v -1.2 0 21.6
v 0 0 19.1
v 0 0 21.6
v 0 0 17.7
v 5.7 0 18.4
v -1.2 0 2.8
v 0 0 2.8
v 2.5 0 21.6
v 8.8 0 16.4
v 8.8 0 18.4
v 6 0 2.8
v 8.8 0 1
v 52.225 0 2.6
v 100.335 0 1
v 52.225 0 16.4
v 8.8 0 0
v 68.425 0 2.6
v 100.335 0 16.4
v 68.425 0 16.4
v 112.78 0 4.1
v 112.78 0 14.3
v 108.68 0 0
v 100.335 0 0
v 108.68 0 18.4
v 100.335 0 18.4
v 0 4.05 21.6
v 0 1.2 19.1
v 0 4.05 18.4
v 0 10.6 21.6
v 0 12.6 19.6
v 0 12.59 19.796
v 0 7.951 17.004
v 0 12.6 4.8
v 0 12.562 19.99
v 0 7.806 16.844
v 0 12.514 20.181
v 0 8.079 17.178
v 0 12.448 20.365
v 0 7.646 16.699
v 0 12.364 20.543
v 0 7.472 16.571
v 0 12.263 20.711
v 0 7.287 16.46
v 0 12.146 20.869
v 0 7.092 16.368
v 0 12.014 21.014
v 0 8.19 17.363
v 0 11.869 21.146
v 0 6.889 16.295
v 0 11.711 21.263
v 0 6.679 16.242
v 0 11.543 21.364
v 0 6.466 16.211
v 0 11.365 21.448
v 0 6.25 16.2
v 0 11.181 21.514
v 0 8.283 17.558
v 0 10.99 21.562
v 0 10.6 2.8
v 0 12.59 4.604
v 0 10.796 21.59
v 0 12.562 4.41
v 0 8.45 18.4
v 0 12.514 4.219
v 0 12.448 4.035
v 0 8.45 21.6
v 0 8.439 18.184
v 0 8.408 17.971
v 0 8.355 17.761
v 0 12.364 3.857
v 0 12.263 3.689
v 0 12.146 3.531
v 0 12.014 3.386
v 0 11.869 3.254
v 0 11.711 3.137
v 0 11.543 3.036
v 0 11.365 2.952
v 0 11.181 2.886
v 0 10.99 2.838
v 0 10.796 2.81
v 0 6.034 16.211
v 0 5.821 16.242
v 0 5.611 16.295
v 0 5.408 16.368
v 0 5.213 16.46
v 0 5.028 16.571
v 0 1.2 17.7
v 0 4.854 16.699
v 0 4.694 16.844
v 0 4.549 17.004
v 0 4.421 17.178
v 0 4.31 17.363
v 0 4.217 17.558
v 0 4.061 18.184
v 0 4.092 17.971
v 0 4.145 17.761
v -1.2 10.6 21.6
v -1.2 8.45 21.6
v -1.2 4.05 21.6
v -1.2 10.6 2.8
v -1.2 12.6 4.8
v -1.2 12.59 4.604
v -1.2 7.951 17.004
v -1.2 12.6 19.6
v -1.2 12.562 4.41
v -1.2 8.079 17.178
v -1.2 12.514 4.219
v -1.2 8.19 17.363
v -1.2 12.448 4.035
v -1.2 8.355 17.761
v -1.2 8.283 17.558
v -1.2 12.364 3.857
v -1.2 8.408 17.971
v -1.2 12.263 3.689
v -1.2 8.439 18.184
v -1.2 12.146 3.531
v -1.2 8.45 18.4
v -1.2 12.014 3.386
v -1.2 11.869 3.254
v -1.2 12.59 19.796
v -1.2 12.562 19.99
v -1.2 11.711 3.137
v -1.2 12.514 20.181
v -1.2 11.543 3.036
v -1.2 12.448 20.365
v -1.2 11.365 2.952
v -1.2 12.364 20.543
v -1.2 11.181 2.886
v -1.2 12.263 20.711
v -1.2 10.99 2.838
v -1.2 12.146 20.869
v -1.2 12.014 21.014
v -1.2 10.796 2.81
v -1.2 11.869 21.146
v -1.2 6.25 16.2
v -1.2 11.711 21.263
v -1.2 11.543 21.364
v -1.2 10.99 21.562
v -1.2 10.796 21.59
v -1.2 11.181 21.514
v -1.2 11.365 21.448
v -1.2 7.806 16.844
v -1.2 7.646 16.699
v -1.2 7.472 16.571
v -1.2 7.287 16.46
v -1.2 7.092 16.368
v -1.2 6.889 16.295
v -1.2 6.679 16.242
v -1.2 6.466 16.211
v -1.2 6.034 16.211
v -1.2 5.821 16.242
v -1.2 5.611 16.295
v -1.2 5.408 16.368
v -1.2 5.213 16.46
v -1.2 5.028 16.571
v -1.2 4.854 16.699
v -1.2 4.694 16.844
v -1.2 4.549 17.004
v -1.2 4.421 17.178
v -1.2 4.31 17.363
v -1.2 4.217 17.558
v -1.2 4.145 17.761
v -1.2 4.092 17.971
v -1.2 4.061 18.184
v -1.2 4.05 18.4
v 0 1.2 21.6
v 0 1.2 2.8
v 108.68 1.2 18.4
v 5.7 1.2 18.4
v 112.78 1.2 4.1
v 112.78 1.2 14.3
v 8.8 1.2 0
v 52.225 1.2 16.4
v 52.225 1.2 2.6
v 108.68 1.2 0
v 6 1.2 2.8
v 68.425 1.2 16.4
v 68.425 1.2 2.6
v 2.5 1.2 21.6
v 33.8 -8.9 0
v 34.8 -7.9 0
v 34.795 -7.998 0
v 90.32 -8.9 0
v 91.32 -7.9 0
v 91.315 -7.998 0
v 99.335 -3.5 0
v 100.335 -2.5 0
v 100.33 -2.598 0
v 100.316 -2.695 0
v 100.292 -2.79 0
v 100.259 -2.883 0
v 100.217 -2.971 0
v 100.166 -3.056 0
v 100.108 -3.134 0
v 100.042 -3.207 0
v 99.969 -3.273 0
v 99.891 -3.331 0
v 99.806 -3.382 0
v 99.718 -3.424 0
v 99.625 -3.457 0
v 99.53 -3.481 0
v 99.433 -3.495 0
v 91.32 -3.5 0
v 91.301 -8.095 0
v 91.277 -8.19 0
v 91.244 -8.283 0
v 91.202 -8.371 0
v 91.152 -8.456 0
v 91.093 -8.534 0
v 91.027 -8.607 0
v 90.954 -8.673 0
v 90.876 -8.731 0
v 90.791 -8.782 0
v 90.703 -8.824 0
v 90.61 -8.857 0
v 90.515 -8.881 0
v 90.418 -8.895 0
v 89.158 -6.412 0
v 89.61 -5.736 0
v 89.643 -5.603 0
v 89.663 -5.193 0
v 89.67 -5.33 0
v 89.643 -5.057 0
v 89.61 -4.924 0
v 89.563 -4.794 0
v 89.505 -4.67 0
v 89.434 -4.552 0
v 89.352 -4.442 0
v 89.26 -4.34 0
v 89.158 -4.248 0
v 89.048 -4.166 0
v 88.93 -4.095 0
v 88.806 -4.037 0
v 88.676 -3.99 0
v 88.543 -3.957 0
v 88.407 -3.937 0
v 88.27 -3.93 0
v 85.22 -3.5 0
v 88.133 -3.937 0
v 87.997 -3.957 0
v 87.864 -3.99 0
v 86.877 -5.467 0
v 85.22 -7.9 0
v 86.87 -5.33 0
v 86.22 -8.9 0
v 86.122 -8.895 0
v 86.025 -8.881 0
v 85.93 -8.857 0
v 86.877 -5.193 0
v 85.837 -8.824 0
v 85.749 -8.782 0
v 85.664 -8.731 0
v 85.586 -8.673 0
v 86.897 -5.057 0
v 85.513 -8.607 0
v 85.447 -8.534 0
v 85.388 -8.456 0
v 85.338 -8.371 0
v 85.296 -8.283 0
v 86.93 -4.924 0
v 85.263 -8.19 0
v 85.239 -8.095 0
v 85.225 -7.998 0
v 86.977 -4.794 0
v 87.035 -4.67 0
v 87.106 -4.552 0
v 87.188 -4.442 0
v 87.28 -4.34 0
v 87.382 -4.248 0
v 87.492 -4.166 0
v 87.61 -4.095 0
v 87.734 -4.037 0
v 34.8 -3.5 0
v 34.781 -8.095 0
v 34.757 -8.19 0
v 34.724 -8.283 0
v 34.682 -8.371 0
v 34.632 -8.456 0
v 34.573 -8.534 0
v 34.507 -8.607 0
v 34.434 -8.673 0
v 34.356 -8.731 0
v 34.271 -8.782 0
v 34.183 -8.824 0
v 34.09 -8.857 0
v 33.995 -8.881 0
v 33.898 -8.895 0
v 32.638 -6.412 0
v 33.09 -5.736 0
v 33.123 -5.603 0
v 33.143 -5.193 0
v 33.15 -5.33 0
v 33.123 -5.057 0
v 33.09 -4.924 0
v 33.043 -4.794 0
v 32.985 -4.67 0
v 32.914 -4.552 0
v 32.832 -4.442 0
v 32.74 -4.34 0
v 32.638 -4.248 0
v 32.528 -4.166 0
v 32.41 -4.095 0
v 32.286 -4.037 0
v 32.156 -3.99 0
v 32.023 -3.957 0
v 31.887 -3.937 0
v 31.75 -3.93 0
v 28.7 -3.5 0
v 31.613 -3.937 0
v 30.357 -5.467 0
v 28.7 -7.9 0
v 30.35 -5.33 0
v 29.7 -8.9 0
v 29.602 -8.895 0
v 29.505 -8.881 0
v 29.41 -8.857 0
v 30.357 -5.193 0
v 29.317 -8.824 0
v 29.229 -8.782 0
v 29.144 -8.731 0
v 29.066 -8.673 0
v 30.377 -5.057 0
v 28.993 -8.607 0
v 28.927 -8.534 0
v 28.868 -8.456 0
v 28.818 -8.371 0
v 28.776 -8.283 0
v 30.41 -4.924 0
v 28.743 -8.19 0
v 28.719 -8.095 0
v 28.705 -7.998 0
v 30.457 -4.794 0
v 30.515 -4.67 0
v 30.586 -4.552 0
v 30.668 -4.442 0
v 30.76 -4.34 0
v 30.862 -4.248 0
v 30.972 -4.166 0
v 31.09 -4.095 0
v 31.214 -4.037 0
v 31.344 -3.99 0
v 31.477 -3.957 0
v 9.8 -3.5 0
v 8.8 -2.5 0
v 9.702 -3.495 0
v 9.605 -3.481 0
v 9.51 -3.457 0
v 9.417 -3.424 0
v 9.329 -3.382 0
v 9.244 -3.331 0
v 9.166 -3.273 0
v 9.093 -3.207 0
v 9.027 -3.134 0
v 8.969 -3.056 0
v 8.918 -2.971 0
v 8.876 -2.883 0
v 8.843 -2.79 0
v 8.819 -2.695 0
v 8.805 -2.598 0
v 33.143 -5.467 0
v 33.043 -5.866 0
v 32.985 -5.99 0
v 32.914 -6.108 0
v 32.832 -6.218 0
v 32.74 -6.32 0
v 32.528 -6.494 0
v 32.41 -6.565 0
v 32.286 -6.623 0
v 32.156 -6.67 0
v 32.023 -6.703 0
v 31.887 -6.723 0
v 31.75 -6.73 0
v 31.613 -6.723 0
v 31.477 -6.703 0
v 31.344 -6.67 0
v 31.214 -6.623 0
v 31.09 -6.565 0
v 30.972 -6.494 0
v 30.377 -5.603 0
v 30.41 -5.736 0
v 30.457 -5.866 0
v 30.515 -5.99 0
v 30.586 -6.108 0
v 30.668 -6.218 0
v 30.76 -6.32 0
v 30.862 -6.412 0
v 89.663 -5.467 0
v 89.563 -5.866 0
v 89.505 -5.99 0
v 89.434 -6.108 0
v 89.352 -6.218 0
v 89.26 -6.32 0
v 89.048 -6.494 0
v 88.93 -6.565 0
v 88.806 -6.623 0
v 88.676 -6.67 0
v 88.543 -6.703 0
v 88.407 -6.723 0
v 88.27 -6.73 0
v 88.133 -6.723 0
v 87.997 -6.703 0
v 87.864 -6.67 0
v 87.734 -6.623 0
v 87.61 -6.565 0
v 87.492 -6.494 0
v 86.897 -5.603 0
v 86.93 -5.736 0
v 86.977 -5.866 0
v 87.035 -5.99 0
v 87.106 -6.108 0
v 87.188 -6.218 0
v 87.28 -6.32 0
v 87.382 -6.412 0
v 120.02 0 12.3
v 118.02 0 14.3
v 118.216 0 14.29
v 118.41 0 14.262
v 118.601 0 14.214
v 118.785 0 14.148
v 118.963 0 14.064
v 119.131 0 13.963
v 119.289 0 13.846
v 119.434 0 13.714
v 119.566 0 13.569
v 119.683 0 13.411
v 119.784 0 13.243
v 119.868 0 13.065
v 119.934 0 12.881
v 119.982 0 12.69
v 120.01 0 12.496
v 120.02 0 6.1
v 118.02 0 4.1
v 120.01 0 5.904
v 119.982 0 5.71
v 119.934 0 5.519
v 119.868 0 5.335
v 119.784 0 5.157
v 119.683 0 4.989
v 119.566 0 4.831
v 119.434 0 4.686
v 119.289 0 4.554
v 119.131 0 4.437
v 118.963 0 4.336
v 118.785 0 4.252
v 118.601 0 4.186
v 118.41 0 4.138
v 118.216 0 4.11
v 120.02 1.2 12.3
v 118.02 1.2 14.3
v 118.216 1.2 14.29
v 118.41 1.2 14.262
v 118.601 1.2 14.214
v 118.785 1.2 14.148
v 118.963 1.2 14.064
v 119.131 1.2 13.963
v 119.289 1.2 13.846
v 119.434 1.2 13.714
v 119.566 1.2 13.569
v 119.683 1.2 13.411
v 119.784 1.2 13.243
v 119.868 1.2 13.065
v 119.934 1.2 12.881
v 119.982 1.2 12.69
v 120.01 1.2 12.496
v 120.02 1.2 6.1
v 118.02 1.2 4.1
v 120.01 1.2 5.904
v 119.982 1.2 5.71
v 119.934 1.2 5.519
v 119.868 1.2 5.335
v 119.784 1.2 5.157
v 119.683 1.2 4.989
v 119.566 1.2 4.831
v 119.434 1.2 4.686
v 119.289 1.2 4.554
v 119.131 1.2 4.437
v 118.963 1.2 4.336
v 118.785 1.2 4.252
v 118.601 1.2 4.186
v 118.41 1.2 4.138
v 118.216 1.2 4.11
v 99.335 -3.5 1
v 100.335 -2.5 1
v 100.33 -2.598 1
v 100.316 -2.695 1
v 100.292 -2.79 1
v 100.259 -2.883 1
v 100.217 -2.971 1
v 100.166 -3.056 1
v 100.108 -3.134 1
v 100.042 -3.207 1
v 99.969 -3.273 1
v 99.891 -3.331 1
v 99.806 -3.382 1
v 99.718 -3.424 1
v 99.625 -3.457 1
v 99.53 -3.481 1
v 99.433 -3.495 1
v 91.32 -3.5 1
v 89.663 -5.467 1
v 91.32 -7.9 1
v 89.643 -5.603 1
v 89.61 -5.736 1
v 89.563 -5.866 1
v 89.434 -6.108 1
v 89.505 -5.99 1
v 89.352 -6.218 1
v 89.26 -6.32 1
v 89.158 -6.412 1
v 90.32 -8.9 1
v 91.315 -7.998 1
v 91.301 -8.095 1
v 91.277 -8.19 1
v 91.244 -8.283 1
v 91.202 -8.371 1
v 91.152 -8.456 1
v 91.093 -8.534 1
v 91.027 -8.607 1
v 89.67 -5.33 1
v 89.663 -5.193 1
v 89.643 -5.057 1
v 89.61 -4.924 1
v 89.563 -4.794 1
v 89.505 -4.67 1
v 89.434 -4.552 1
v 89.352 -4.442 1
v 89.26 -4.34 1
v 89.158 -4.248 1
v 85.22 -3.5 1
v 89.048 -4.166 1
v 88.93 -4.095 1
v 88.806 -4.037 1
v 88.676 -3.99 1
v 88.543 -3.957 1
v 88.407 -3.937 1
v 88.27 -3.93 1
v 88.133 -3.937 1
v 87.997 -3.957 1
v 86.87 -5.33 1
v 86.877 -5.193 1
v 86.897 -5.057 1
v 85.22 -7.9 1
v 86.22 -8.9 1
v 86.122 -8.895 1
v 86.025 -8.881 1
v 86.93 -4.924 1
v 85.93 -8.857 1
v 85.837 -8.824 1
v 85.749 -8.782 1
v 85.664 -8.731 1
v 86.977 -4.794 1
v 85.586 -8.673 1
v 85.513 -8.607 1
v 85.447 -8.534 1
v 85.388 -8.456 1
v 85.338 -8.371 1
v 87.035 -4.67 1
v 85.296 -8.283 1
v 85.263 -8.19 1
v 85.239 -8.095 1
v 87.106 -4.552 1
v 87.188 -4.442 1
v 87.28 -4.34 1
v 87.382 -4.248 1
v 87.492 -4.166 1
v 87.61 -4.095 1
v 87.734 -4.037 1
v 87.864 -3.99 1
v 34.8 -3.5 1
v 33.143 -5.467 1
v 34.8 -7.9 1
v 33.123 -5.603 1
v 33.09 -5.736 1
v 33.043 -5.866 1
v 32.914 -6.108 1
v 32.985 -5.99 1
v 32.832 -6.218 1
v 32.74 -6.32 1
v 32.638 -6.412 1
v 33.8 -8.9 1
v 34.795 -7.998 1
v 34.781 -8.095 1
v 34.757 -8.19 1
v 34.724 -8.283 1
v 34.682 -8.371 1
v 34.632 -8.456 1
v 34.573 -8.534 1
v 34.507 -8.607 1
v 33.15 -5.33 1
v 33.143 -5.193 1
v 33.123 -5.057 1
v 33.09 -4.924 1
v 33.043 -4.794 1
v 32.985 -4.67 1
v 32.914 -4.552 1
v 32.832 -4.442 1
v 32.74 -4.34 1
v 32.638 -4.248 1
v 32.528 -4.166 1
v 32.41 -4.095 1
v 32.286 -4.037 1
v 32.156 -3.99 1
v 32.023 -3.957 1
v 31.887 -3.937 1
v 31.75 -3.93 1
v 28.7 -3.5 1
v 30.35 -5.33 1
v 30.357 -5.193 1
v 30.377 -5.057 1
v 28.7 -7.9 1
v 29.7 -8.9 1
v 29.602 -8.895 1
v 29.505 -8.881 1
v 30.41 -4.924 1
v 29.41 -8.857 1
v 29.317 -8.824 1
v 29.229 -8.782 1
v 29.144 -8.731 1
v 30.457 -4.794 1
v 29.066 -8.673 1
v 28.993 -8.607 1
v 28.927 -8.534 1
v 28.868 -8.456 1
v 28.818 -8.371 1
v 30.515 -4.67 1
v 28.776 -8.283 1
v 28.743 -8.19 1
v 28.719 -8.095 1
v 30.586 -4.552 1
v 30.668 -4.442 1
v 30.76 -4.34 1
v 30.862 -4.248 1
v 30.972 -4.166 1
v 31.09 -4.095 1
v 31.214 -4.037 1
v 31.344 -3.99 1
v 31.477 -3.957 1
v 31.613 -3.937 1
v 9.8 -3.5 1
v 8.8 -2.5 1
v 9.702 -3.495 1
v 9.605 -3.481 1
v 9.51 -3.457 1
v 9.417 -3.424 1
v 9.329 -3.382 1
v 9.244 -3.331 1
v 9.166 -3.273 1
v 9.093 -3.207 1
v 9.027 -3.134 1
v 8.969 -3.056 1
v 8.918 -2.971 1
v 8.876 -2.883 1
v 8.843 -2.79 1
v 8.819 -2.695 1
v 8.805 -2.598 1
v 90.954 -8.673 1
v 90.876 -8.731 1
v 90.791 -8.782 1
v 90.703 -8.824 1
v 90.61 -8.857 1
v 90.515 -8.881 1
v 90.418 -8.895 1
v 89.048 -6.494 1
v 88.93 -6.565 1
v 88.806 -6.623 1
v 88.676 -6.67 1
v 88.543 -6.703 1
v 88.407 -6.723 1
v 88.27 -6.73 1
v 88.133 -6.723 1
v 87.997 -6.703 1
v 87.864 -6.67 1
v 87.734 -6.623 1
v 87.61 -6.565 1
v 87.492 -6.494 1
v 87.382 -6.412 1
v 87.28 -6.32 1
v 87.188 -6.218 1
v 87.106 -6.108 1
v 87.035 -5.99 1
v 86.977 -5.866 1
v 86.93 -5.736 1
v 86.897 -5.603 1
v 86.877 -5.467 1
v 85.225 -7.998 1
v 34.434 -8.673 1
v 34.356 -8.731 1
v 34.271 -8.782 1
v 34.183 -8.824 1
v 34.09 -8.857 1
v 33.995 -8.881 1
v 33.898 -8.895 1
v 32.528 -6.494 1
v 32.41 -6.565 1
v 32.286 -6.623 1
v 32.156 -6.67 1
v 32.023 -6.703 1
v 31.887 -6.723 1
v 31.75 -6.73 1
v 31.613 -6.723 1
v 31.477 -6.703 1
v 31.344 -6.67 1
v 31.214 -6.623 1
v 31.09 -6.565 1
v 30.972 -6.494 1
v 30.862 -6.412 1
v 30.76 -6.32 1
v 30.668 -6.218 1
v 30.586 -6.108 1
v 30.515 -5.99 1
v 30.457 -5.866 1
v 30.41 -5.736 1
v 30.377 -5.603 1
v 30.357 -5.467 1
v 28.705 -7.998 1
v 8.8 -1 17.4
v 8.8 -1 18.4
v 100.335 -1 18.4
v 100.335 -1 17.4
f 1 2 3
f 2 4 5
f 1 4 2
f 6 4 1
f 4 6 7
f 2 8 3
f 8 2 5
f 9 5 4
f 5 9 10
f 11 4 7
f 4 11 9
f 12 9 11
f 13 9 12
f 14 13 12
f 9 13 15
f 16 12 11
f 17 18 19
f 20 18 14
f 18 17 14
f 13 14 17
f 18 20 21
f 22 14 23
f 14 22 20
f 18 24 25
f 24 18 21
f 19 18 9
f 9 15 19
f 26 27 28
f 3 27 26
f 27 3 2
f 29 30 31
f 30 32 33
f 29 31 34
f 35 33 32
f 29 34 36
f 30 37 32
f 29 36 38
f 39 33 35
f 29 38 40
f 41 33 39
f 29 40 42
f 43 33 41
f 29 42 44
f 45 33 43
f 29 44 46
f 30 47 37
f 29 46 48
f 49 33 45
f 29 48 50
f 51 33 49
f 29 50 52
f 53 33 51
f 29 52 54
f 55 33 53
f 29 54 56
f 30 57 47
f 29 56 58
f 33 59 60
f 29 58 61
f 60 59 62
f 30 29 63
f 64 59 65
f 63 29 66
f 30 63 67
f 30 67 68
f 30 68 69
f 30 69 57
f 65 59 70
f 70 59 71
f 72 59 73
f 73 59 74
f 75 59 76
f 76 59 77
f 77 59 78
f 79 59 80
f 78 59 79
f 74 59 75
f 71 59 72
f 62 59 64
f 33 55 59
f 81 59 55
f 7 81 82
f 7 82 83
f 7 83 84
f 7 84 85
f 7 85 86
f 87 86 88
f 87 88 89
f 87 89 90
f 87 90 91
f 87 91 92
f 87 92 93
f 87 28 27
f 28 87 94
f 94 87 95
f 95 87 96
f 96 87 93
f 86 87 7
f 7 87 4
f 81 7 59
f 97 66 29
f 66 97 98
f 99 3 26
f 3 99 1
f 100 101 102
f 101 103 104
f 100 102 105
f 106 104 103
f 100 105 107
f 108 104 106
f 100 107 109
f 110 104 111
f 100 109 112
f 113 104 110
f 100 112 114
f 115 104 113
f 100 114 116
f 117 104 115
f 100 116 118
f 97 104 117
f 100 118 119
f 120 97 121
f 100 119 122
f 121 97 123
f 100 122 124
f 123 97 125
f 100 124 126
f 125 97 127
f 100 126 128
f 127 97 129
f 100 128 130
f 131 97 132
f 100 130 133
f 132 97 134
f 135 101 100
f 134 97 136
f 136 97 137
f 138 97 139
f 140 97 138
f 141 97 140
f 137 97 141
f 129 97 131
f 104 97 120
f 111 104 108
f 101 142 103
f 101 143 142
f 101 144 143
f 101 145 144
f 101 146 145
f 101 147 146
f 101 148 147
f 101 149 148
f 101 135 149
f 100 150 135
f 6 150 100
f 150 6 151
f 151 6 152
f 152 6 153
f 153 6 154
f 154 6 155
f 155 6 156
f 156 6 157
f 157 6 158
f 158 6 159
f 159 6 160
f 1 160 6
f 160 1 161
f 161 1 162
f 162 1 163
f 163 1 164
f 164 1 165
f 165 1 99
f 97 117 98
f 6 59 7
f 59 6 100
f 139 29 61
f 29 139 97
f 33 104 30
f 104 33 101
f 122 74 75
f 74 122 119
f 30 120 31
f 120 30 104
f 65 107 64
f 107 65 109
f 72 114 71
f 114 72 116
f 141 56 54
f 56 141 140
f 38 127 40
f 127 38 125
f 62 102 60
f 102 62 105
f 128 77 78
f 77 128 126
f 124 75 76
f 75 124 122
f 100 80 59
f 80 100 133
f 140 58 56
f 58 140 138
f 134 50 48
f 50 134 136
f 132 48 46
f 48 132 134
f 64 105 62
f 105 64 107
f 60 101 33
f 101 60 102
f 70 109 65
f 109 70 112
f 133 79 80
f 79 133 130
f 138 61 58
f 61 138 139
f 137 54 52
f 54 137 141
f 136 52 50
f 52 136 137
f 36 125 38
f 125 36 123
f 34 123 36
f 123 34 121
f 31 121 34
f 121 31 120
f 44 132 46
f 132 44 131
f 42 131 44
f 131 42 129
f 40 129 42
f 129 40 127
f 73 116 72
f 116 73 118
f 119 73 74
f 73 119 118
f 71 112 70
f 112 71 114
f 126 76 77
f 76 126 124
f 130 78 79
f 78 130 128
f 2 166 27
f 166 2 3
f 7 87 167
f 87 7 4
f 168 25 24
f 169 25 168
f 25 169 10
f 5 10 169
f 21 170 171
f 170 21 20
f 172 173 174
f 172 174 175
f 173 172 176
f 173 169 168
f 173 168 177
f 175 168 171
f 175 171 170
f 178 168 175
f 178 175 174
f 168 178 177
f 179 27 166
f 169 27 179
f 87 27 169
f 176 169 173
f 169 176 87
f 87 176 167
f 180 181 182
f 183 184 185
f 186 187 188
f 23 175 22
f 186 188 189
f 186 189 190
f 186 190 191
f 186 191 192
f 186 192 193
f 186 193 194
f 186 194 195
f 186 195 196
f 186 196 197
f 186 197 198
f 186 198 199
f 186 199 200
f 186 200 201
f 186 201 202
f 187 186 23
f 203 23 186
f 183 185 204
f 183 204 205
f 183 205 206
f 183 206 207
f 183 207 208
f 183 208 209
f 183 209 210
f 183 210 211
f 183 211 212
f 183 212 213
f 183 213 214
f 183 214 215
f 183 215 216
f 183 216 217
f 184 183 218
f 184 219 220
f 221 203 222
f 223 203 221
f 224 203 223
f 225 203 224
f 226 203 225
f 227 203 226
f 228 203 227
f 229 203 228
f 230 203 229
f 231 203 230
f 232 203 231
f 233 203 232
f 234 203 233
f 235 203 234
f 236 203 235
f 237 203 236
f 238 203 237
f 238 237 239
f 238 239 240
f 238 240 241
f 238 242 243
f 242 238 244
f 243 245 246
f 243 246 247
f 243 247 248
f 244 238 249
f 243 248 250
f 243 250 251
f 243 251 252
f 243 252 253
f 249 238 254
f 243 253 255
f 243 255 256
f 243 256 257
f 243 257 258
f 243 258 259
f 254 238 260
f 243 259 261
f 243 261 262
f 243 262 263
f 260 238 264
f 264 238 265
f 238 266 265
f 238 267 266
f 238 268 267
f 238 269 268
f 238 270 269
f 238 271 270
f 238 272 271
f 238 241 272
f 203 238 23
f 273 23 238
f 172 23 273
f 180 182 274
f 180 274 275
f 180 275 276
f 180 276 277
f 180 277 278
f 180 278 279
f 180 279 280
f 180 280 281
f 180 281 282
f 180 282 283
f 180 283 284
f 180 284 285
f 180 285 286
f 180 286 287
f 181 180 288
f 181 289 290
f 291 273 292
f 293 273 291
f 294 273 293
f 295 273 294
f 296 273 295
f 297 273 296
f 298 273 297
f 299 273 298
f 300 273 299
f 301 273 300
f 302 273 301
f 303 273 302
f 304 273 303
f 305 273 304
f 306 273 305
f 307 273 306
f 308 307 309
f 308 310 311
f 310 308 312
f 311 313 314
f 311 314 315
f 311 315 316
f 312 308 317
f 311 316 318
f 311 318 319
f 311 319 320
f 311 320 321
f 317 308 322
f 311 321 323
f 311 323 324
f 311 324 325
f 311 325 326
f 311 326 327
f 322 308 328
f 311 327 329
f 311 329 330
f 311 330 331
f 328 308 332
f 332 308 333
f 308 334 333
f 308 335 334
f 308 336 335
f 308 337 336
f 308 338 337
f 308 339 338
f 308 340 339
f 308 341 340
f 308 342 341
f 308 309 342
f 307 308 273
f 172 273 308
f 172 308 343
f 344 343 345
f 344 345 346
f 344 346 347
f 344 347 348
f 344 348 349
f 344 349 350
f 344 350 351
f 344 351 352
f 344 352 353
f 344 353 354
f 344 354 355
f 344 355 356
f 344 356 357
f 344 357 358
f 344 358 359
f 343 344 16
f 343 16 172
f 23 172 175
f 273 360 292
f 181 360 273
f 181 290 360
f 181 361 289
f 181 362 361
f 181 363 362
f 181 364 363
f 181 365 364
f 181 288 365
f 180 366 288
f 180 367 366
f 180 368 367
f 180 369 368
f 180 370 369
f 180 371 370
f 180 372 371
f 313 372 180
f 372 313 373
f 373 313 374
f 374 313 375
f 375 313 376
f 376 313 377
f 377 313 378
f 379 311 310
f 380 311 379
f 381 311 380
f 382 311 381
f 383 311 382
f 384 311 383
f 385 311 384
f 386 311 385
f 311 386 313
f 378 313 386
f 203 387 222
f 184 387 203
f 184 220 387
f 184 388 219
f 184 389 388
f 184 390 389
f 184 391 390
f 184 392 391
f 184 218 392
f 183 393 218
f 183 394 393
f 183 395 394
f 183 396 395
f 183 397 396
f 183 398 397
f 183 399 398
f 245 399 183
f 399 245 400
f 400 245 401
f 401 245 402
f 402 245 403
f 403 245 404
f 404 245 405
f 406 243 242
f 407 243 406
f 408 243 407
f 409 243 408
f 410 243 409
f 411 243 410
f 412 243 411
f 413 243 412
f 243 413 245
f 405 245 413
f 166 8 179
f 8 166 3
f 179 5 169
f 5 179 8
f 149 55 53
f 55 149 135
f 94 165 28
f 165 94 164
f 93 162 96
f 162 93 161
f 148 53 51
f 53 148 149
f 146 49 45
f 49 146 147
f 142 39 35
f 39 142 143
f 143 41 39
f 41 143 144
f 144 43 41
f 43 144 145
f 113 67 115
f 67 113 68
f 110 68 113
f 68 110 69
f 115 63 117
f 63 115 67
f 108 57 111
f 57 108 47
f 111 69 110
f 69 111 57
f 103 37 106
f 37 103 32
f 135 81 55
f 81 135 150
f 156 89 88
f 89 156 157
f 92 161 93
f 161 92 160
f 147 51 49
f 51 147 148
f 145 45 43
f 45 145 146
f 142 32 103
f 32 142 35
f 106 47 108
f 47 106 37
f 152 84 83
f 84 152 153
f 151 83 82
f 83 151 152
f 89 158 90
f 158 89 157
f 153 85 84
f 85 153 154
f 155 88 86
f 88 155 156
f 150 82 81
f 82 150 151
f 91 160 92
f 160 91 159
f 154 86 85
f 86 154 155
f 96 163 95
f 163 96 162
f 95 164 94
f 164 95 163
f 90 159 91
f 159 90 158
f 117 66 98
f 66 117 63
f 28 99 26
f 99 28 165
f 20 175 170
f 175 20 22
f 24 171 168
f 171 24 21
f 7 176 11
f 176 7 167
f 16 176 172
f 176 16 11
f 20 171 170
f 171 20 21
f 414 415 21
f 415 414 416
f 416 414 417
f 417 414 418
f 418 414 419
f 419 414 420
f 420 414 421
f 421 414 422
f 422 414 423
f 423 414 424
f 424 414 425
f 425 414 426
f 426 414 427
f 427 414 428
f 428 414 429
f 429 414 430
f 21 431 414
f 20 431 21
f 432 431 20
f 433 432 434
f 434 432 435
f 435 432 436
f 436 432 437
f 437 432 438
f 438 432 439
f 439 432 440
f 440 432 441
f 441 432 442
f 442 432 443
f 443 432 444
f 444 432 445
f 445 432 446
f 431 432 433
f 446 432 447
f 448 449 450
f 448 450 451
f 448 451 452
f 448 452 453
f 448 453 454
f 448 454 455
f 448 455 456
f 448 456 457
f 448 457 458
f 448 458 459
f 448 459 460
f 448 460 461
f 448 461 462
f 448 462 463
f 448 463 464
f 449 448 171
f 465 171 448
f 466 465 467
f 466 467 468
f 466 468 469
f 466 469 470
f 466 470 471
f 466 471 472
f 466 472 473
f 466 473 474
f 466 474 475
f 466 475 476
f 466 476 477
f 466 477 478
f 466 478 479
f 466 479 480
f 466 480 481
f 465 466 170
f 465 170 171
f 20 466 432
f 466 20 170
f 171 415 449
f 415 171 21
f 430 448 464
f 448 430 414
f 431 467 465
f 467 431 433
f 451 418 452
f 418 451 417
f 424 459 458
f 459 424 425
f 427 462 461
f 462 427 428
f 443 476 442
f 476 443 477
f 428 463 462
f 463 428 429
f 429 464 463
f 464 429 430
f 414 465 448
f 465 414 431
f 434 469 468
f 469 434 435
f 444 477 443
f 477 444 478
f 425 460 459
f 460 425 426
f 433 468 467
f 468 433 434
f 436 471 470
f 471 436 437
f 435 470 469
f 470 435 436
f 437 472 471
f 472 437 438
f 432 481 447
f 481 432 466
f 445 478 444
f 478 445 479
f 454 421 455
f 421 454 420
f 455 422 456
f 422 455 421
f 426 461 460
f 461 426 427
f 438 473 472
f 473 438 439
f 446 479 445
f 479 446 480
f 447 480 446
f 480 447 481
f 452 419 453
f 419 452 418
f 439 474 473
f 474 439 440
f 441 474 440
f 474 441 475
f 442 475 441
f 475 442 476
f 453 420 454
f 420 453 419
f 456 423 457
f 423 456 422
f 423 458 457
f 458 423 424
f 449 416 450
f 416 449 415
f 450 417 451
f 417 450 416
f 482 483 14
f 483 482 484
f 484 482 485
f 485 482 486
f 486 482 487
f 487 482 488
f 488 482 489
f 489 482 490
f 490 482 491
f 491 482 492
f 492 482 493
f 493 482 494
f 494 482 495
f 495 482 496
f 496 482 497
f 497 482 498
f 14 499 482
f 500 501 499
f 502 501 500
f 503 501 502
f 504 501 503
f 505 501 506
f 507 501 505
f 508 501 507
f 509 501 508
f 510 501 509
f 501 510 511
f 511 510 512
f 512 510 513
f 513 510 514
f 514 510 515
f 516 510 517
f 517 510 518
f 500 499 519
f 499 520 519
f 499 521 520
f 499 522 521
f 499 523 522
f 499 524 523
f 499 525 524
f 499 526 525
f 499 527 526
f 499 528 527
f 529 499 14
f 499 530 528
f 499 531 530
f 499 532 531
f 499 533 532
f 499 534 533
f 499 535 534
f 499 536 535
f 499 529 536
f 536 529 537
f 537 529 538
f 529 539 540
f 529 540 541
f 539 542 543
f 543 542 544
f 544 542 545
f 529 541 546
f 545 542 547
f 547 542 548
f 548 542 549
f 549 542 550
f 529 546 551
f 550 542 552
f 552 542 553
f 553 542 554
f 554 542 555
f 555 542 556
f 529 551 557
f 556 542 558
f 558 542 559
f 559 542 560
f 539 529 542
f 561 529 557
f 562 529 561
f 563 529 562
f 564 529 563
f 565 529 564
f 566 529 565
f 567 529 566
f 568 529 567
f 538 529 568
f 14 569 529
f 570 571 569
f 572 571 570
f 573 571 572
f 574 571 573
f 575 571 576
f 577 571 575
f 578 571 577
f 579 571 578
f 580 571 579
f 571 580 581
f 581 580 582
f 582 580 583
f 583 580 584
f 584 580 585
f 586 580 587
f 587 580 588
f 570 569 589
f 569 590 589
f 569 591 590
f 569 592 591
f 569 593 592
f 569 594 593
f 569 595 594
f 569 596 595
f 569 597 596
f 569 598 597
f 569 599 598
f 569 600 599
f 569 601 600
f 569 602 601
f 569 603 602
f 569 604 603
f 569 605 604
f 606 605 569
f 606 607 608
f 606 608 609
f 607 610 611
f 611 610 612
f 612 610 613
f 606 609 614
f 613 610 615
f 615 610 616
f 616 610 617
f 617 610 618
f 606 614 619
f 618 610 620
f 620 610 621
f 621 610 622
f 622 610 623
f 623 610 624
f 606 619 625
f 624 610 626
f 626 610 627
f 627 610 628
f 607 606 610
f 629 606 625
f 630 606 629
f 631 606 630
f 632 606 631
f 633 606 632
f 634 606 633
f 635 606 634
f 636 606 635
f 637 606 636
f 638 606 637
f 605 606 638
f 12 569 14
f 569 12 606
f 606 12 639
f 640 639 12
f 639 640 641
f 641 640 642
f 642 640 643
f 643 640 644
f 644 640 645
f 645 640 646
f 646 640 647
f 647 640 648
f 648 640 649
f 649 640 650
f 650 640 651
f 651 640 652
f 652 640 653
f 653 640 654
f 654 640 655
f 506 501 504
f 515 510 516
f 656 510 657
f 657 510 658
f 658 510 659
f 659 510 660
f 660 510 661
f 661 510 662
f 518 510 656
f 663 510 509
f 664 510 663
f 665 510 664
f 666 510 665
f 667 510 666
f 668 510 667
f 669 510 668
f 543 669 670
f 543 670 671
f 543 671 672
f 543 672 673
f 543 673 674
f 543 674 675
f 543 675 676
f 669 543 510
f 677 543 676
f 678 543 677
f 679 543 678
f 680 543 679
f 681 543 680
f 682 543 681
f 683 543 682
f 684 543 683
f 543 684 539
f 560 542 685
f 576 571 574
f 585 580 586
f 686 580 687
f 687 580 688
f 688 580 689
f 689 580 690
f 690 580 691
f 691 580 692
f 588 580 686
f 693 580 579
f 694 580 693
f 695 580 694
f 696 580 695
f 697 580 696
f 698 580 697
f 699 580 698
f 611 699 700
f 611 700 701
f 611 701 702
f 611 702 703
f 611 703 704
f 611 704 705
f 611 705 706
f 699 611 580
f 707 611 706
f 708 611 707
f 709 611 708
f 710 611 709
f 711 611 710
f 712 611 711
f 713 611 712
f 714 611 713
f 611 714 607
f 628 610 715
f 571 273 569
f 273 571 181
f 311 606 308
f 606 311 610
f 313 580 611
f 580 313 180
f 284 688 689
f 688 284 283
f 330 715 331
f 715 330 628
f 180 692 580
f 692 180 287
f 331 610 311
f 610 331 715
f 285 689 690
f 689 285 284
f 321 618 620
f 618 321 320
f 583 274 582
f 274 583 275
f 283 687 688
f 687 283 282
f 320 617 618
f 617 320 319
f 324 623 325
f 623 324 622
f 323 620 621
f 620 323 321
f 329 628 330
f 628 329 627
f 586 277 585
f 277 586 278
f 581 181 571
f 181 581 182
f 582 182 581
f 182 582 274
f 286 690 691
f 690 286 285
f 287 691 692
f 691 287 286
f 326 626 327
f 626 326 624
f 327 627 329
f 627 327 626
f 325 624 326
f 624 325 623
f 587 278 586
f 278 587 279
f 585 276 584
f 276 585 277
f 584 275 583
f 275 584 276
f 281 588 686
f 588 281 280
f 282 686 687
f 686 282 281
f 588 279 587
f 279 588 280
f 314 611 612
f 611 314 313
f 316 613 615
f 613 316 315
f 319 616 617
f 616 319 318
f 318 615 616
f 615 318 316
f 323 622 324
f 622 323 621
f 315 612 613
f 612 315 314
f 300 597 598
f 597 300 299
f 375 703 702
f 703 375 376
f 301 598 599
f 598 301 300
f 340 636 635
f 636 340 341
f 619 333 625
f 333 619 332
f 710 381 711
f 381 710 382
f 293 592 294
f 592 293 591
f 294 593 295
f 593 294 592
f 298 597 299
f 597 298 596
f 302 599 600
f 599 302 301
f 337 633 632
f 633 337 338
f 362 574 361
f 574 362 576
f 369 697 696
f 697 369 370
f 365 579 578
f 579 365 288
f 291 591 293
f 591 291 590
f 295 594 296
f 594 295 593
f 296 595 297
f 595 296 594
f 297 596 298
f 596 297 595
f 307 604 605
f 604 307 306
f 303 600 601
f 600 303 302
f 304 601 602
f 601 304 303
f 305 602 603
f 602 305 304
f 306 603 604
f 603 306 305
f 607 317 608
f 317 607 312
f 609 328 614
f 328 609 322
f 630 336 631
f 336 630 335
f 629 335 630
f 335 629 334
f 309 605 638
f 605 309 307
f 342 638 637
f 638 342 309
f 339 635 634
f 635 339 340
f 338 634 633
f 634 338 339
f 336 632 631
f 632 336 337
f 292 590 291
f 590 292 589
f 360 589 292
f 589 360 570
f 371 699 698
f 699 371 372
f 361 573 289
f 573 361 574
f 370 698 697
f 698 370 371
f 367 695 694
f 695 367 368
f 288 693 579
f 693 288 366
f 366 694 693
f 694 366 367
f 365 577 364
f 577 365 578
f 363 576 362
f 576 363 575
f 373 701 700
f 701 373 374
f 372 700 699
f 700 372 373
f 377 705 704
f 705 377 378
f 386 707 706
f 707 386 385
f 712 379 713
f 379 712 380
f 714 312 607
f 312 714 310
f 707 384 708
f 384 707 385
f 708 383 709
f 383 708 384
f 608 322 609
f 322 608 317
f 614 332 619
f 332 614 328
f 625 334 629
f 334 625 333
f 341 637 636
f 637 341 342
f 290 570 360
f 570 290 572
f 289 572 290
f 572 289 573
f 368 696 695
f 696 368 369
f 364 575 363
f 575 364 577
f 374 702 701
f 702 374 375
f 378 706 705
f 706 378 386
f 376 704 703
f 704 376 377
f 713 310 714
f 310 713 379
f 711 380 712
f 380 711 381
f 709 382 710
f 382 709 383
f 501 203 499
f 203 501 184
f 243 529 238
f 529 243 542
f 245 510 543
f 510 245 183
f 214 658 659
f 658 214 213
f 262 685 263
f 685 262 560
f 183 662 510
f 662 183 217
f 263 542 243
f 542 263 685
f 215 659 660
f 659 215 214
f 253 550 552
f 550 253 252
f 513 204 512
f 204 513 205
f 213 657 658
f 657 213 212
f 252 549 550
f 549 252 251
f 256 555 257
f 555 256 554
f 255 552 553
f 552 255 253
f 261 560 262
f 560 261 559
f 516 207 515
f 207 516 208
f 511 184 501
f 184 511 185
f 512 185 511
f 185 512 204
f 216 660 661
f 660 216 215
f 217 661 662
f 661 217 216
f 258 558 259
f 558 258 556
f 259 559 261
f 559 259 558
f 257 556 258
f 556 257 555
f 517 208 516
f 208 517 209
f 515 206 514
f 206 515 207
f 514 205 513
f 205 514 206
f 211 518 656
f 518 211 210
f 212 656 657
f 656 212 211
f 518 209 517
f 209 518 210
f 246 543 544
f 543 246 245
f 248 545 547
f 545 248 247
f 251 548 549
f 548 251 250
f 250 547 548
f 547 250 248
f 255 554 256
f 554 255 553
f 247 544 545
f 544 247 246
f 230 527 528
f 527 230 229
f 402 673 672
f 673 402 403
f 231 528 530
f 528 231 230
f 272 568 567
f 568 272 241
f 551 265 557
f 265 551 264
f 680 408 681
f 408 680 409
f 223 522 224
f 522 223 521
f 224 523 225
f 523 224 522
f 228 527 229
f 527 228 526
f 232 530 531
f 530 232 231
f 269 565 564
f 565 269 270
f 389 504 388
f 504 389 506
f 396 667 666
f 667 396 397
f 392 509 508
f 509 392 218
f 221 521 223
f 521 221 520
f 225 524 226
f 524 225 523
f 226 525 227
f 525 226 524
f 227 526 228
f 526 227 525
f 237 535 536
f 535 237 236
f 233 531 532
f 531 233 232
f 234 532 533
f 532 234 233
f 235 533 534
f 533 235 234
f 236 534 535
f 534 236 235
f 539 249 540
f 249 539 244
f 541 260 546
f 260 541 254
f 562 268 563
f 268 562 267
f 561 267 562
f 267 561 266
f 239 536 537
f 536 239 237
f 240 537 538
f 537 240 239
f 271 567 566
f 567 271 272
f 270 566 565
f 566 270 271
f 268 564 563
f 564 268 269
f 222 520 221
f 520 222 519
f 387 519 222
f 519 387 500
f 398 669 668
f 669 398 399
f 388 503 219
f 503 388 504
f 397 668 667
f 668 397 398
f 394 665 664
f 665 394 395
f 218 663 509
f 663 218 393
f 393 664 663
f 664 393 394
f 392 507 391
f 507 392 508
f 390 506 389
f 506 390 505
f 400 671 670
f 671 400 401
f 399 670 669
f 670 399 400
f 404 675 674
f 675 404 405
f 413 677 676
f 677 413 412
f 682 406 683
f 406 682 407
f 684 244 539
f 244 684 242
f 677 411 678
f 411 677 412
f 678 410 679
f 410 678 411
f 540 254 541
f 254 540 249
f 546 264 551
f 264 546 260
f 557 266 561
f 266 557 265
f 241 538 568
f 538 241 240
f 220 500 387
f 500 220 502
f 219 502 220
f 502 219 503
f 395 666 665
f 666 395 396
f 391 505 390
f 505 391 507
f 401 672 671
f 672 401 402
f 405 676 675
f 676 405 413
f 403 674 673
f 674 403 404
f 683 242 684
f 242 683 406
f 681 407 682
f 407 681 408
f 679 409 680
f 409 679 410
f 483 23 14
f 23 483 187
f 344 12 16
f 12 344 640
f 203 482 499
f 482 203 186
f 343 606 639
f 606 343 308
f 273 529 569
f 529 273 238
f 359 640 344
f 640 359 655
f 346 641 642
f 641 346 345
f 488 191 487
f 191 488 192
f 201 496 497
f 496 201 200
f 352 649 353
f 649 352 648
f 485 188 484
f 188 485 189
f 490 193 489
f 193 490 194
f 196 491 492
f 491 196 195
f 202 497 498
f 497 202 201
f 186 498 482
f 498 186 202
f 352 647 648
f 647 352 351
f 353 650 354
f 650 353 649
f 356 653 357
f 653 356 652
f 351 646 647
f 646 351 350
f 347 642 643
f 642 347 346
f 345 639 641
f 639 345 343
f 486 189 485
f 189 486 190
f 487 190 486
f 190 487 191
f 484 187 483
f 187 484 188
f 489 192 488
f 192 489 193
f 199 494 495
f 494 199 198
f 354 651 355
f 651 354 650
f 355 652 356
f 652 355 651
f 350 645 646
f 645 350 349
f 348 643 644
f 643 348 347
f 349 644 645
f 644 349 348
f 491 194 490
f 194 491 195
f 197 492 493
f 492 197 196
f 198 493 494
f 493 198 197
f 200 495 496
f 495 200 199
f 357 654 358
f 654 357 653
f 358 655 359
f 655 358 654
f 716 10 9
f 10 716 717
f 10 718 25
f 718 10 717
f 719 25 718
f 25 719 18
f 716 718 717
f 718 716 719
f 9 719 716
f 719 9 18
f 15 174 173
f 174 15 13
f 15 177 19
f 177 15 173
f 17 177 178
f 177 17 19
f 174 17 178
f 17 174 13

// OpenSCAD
// ISA Bracket - Compatible with Keystone Electronics 9202
//
// Copyright (C) Sergey Kiselev <skiselev@gmail.com>
// Losely based on work by Arne Schmitz <arne.schmitz@me.com>

br_width = 18.4;
br_height = 120.02;
br_thick = 1.2;
tolerance = 0.1;

cut_bottom_width = 4.11;
cut_bottom_height = 7.5;

br_height_wo_tongue = 112.78;
tongue_height = (br_height - br_height_wo_tongue);
tongue_width = 10.2;
tongue_cut_width = (br_width-tongue_width)/2;

tab_width=18.8;
tab_length=11.4;

cut_left_height=6;
cut_left_width=2.8;

append_right_height=2.5; // 3.2;
append_right_width=cut_left_width+tab_width-br_width;

tab_hole_diameter = 4.4;
tab_hole_y = tab_length+br_thick-6.35;
tab_hole_z = cut_left_width+tab_width-3.2;

pcb_mount_length = 8.9;
pcb_mount_width = 6.1;
pcb_mount_thick = 1;
pcb_mount_1_x = 31.75;
pcb_mount_2_x = pcb_mount_1_x + 56.52;

pcb_hole_y = 5.33;
pcb_hole_diameter = 2.8;

eth_height = 16.2; // 16.25
eth_width = 13.8;
eth_center_x = pcb_mount_1_x + 1.125 * 25.4;
eth_offset_z = 2.6;

// Bracket orientation: laying down on PCB mounts in card's (X-Y) plane
// Origin - top (ISA card oriented vertically) inside (closer to the PCB) corner

union() {
    difference() {
        // blank bracket
        blank_bracket();
        // cutout for the Ethernet connector
        eth_cutout();
    }
    // first PCB mount
    translate([pcb_mount_1_x,0,0]) {
        pcb_mount();
    }
    // second PCB mount
    translate([pcb_mount_2_x,0,0]) {
        pcb_mount();
    }
    // bottom reinforcement
    translate([cut_left_height+cut_left_width,0,0]) {
        rotate([0,0,270]) {
            rounded_cube2(3.5,pcb_mount_2_x+12.065-cut_left_height-cut_left_width,pcb_mount_thick,1);
        }
    }
    // top reinforcement
    translate([cut_left_height+cut_left_width,-1,br_width-1]) {
        cube ([pcb_mount_2_x+12.065-cut_left_height-cut_left_width,1,1]);
        translate([0,1,-1]) {
            rotate([45,0,0]) {
                cube([pcb_mount_2_x+12.065-cut_left_height-cut_left_width,sqrt(2),sqrt(2)]);
            }
        }
    }
}

module blank_bracket() {
    translate([0,0,0]) {
        difference() {
            union() {
                // the main bracket sheet
                cube([br_height_wo_tongue,br_thick,br_width]);
                // appendix - top right
                translate([0,0,br_width]) {
                    cube([append_right_height,br_thick,append_right_width]);
                }
                translate([append_right_height-append_right_width,0,br_width]) {
                    rotate([0,45,0]) {
                        cube([append_right_width*sqrt(2),br_thick,append_right_width*sqrt(2)]);
                    }
                }
                // mounting tab
                translate([-br_thick,0,cut_left_width]) {
                    //cube([br_thick,tab_length+br_thick,tab_width]);
                    rotate([90,0,90]) {
                        rounded_cube2(tab_length+br_thick,tab_width,br_thick,2);
                    }
                    translate([0,br_thick+tab_length-6.35,cut_left_width+tab_width]) {
                    }
                }
            }
            // cut corner towards the tongue (closer to PCB)
            translate([br_height_wo_tongue-tongue_cut_width,-tolerance,0]){
                rotate([0,45,0]) {
                    cube([tongue_cut_width*sqrt(2),br_thick+tolerance*2,tongue_cut_width*sqrt(2)]);
                }
            }
            // cut corner towards the tongue (farther from PCB)
            translate([br_height_wo_tongue-tongue_cut_width,-tolerance,br_width]){
                rotate([0,45,0]) {
                    cube([tongue_cut_width*sqrt(2),br_thick+tolerance*2,tongue_cut_width*sqrt(2)]);
                }
            }
            // cutout - top left
            translate([-tolerance,-tolerance,-tolerance]) {
                cube([cut_left_height+tolerance,br_thick+tolerance*2,cut_left_width+tolerance]);
            }
            translate([cut_left_height-cut_left_width,-tolerance,0]) {
                rotate([0,45,0]) {
                    cube([cut_left_width*sqrt(2),br_thick+tolerance*2,cut_left_width*sqrt(2)]);
                }
            }
            // mounting tab - slot for the screw
            translate([-br_thick-tolerance,tab_hole_y,tab_hole_z]) {
                rotate([0,90,0]) {
                    cylinder(d=tab_hole_diameter,h=br_thick+tolerance*2,$fn=64);
                }
                translate([0,-tab_hole_diameter/2,0]) {
                    cube([br_thick+tolerance*2,tab_hole_diameter,3.2+tolerance]);
                }
            }
        }
    }
    // the tongue
    translate([br_height_wo_tongue,br_thick,tongue_cut_width]) {
        //cube([tongue_height,br_thick,tongue_width]);
        rotate([90,0,0]) {
            rounded_cube2(tongue_height,tongue_width,br_thick,2);
        }
    }
}

module pcb_mount() {
    difference () {
        translate([-pcb_mount_width/2,0,0]) {
            rotate([0,0,270]) {
                rounded_cube2(pcb_mount_length,pcb_mount_width,1,pcb_mount_thick);
            }
        }
        translate([0,-pcb_hole_y,-tolerance]) {
            cylinder(d=pcb_hole_diameter,h=pcb_mount_thick+tolerance*2,$fn=64);
        }
    }
}

// Cutout for Ethernet modular connector
module eth_cutout() {
      translate([eth_center_x-eth_height/2,-tolerance,eth_offset_z]) {
          cube([eth_height,br_thick+tolerance*2,eth_width]);
      }
}

// rounded_cube2 - draws a "cube" with two rounded corners
// it is assumed that the cube lays in the X-Y plane
// and the rounded corner is in Z axis
module rounded_cube2(x,y,z,r) {
    union() {
        cube([x-r,y,z]);
        hull() {
            translate([x-r,r,0]) {
                cylinder(r=r,h=z,$fn=64);
            }
            translate([x-r,y-r,0]) {
                cylinder(r=r,h=z,$fn=64);
            }
        }
    }
}
